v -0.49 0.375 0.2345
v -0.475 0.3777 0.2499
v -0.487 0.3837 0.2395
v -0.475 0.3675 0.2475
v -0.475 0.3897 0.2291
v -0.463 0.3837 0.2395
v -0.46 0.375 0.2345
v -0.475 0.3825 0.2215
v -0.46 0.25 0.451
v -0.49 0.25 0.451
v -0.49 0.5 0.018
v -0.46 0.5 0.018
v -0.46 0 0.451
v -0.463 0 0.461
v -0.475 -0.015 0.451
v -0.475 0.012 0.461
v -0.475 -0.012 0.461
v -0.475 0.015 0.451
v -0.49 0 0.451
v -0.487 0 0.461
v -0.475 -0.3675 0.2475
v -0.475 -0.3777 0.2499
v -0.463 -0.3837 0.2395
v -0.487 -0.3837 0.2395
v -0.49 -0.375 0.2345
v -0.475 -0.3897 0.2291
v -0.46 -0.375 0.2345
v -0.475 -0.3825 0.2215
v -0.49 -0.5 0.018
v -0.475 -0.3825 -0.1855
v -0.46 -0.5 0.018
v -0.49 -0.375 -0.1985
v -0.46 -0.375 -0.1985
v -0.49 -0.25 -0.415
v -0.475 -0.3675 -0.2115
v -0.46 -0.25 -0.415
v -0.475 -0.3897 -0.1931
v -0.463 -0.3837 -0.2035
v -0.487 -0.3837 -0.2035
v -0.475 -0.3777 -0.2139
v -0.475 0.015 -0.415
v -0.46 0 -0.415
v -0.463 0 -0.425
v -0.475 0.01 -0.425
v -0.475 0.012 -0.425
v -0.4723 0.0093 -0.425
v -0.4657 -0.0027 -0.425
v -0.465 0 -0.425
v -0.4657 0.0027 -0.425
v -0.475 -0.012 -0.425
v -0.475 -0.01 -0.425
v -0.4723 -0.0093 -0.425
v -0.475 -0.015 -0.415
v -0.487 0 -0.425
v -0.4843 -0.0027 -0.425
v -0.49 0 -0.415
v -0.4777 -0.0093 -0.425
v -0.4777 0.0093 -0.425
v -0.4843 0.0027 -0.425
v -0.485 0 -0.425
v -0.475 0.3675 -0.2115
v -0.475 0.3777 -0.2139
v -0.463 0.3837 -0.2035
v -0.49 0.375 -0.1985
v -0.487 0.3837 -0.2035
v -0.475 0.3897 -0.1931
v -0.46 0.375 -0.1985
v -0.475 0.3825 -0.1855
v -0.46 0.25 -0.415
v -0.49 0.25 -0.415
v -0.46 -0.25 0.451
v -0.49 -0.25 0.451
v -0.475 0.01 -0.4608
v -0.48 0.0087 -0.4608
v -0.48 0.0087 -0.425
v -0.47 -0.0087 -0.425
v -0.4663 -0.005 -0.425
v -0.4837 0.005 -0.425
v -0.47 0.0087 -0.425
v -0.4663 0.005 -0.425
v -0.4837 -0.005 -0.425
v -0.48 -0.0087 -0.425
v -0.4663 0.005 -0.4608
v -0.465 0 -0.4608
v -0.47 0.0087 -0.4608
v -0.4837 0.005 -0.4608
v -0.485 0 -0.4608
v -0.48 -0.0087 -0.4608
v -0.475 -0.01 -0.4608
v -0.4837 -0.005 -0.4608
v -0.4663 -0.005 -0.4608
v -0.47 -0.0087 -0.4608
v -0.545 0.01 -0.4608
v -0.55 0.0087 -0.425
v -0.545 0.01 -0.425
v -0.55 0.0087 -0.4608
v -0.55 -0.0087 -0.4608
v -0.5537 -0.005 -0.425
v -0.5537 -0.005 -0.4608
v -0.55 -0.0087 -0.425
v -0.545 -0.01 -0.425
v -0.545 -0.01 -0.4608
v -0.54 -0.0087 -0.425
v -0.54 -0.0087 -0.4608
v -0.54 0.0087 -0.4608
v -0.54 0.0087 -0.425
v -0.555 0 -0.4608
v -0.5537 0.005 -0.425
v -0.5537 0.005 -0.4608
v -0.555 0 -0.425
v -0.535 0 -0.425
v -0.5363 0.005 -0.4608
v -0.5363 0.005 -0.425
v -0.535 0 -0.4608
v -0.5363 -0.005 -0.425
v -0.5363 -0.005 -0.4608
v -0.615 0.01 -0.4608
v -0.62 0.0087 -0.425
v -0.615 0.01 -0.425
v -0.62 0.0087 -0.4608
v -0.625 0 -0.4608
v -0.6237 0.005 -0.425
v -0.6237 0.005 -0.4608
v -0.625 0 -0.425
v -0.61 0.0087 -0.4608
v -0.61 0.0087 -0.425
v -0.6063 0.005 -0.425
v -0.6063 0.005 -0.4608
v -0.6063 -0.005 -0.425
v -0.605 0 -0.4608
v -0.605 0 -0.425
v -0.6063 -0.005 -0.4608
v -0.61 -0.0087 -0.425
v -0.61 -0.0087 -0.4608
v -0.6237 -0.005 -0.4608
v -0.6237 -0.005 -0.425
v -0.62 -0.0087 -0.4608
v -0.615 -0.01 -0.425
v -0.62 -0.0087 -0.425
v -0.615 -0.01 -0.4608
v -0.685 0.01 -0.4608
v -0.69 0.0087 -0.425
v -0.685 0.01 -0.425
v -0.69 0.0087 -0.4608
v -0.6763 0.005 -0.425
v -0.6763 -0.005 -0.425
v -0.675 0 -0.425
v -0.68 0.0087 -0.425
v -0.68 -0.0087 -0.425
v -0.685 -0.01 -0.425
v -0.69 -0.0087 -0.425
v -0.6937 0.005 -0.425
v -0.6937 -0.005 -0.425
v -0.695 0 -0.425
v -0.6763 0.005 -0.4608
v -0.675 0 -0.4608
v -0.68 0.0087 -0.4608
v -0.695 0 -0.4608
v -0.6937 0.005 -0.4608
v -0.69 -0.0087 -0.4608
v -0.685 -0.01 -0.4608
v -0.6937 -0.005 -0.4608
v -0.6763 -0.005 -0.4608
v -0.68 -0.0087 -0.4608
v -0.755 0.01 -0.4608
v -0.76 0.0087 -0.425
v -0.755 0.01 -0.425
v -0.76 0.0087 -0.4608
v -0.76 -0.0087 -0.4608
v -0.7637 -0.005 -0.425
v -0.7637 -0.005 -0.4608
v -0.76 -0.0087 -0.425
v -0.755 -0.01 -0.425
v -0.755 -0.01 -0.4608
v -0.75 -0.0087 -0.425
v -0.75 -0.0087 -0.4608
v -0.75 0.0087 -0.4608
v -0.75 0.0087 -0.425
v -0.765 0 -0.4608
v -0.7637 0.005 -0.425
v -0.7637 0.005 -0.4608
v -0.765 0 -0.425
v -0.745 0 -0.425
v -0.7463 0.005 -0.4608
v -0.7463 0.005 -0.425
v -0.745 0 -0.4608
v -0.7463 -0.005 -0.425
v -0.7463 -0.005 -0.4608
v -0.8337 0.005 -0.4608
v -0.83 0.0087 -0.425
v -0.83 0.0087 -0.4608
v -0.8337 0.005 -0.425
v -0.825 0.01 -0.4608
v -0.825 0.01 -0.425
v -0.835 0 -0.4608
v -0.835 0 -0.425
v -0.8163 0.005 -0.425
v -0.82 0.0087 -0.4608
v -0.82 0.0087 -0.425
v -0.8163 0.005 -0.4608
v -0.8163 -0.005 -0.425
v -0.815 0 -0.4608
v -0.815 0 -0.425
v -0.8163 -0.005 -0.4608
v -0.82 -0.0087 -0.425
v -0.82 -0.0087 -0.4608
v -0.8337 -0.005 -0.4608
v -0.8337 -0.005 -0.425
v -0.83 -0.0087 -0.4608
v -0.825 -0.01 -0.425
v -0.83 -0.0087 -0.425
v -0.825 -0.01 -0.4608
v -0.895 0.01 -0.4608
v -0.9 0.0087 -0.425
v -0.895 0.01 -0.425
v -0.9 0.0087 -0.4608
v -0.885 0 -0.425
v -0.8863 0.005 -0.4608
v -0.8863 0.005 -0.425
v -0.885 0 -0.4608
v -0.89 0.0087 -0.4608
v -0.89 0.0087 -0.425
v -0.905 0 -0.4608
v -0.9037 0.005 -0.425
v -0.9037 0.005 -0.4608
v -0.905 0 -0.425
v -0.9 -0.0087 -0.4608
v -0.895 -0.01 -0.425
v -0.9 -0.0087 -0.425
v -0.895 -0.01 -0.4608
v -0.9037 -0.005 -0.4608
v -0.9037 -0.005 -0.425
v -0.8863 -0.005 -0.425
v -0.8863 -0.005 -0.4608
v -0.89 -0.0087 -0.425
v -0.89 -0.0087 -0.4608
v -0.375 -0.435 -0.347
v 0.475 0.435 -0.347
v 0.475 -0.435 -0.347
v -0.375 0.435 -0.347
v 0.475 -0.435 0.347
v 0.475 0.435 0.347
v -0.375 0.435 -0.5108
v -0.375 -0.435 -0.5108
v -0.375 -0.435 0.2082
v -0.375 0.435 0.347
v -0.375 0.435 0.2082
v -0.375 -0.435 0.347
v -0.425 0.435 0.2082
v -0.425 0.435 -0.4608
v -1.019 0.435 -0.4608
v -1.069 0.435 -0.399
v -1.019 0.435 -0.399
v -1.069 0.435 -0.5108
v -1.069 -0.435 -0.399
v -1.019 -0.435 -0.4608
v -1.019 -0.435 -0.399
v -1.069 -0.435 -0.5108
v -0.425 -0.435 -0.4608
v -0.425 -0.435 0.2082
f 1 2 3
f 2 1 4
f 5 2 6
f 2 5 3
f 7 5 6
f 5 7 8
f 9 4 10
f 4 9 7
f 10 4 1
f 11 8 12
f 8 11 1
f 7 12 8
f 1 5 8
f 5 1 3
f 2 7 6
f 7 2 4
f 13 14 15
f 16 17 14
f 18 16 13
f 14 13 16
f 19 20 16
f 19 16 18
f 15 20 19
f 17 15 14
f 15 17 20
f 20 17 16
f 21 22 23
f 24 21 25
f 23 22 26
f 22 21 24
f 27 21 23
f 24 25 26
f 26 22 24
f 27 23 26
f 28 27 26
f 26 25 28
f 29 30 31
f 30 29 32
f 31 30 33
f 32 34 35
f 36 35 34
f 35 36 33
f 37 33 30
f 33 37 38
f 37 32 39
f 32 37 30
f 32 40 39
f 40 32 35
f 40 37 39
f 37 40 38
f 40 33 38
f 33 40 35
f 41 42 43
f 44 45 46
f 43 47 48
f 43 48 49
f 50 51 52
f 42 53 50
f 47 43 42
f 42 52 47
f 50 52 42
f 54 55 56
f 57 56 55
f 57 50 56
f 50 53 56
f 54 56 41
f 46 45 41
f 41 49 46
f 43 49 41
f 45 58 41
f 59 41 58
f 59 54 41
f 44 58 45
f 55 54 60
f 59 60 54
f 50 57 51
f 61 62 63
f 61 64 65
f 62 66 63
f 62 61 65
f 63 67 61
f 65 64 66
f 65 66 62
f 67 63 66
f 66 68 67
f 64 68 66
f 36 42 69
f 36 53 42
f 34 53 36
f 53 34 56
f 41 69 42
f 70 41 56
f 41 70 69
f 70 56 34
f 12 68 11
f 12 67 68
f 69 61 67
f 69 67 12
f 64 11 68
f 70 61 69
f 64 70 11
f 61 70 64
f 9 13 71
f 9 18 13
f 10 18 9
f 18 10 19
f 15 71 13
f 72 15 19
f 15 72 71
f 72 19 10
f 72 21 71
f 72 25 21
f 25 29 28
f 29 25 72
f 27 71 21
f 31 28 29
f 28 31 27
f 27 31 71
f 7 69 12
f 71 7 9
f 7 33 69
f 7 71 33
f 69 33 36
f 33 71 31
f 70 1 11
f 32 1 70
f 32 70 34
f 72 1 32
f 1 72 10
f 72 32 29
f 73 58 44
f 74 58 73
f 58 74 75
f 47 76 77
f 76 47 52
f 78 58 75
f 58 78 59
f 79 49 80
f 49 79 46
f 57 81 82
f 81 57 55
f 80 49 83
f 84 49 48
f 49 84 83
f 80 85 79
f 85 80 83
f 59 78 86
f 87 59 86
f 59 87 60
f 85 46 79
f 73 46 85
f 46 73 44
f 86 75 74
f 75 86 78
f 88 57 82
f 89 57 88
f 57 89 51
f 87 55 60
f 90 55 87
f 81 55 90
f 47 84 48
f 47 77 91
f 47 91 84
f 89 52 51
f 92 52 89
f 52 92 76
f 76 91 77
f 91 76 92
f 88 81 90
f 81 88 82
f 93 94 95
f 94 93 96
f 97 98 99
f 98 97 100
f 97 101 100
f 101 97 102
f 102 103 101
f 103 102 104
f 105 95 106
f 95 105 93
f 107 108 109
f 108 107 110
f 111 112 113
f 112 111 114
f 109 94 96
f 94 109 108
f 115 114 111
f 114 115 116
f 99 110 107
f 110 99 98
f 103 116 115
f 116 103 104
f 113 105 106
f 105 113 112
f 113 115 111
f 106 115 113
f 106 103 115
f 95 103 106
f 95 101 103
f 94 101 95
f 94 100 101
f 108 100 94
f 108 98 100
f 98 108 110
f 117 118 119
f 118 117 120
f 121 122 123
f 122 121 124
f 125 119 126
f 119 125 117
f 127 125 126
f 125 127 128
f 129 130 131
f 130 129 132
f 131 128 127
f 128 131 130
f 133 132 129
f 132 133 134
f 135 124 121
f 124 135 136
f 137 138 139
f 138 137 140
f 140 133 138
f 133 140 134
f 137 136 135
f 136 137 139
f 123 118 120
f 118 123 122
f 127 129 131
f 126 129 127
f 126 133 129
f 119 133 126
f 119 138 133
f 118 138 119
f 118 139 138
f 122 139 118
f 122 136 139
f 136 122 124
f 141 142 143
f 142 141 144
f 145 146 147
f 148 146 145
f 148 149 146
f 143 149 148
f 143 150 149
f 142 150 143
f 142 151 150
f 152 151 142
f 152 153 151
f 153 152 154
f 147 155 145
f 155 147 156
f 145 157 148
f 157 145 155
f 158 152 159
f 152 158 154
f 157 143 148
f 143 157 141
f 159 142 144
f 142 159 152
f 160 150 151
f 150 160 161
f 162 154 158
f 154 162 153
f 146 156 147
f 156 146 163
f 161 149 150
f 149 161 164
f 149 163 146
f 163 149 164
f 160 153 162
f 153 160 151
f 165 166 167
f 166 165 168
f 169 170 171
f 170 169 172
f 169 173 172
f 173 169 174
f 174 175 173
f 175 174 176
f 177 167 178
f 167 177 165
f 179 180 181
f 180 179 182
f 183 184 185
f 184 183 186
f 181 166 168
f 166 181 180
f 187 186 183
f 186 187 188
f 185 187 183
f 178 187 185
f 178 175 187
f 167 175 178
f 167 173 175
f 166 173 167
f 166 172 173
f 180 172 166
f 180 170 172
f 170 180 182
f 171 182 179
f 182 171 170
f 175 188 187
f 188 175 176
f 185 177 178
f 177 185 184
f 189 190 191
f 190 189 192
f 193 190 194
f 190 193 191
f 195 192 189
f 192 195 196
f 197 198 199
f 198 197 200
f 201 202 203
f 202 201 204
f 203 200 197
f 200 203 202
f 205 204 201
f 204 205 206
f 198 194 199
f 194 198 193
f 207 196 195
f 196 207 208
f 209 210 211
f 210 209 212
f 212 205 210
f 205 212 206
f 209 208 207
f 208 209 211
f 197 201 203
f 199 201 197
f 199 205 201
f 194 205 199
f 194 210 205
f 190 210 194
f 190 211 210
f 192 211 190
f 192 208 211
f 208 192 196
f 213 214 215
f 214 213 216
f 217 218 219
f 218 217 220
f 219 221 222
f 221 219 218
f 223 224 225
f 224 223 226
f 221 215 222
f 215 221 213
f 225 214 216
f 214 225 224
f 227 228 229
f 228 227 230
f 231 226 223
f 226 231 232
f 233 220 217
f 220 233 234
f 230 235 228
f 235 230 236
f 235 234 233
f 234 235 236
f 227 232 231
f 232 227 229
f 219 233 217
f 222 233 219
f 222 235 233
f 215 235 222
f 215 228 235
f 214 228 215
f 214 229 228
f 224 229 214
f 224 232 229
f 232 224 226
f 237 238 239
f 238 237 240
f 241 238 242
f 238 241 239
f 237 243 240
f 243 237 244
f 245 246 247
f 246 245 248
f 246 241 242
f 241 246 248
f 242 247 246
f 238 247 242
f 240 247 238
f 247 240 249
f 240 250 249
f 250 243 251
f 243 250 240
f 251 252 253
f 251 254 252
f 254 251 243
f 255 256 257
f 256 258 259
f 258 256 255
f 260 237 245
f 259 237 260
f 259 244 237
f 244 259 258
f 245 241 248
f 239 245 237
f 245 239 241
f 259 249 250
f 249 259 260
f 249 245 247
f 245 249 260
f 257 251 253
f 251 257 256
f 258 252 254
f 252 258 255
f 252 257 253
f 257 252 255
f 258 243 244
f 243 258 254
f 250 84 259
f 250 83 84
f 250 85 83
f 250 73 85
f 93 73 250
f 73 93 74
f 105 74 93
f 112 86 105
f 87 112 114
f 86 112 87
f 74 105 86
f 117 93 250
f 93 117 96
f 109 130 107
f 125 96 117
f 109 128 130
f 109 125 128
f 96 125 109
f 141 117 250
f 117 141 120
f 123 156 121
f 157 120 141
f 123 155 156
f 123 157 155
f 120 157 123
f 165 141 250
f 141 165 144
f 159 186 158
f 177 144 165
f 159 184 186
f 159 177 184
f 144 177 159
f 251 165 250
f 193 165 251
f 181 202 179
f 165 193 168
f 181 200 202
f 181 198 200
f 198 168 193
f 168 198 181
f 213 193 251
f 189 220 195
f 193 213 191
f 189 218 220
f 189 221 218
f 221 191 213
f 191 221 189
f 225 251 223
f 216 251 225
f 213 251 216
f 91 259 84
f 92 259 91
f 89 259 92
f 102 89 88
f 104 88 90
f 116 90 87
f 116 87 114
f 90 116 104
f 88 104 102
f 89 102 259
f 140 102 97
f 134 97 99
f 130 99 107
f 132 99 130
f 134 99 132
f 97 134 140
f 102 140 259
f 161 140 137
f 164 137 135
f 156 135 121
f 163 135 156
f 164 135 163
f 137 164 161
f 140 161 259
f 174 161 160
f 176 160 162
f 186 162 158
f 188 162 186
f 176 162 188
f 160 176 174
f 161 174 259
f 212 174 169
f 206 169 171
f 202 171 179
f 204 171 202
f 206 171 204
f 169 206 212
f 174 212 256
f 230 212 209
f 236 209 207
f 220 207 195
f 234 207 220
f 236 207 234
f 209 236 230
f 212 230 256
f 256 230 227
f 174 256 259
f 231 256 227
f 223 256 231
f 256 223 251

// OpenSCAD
// file: hexagon.scad
module hexagon_tile(R, H=0.03, R_side_grip=0.015, h_side_grip=0.03, h_center_grip=0, r_center_grip=0){
//translate([0,sin(60)*R+h_side_grip/2,0])    
// sin(60)*R+0.05/2 em y
union(){
//difference(){    
cylinder(h = H, r1 = R, r2 = R, center = true, $fn=6);
//translate([0,0,-H/2])
//cylinder(h = H, r1 = R-0.05, r2 = R-0.05, center = true, $fn=6);
//}
for (i = [1:6]){
    rotate([0,0,(i-1)*60])
    translate([0,cos(30)*R+h_side_grip/2,0])
    rotate([90,0,0])
    cylinder(h = h_side_grip, r1 = 0.8*R_side_grip, r2 = R_side_grip, center = true, $fn=4); 
}
translate([0,0,-(h_center_grip+H)/2])
cylinder(h = h_center_grip, r1 = r_center_grip, r2 = r_center_grip, center = true, $fn=6); 
}
}

hexagon_tile(R=1);
// file: solar_panel.scad
module solar_panel(sl=0.25, sw=0.15, sh=0.01, conl=0.1, conh=0.01, hubcl=0.05, hubcw=0.05, hubch=0.01, N=4){
ssep = 0.01;
sep = 0.01;

//cl = (sl-(Nl+1)*sep)/Nl;
//cw = (sw-(Nw+1)*sep)/Nw;
//ch = sh*1.1;

translate([0,hubcw/2,0])
  union(){
    cube([hubcl,hubcw,hubch],center=true);
  translate([-sl/2,0,-sh/2]){
    translate([sl*0.2, 0, -(conh-sh)/2])
      cube([conl,(sw+ssep)*N-ssep,conh]);
    translate([sl*0.8-conl, 0, -(conh-sh)/2])
      cube([conl,(sw+ssep)*N-ssep,conh]);
    for(i=[0:N-1]){
      translate([0, (sw+ssep)*i, 0]){
        cube([sl,sw,sh]);
//        translate([sep, sep, 0])
//          for(i=[0:2])
//            for(j=[0:1])
//              translate([i*(cl+sep), j*(cw+sep), 0])
//                cube([cl,cw,ch]);
        }
    }
  }
  }
}
//rotate([90,0,0])
   color([0.3,0.3,1]) solar_panel(sl=0.6, sw=0.35, sh=0.01, conl=0.01, conh=0.005, hubcl=0.02, hubcw=0.06, hubch=0.008, N=4);
// file: hexagon_mirror.scad
module hexagon_mirror(r_hex, h_hex, th){    
    r = r_hex*0.99;
    lh = r_hex - r;
    h = h_hex - 4*lh;
    
  difference(){
    cylinder(h = h, r1 = r, r2 = r, center = true, $fn=6);
    translate([0,0,h/2])
        cylinder(h = h-th/2, r1 = r-th, r2 = r-th, center = true, $fn=6);
  }
    translate([0,0,-h/2])
        rotate([180,0,0])
            cylinder(h = 4*lh, r1 = 5*lh, r2 = 4*lh, center = true, $fn=6);
}

h_hex=0.05;
th=0.025;
translate([0,0,h_hex/2])
    hexagon_mirror(r_hex=0.5, h_hex=h_hex, th=0.025);
// main file
use <hexagon_mirror.scad>
use <solar_panel.scad>
use <hexagon.scad>

R_side_grip = 0.015;
h_side_grip = 0.01;

module target(R_hub = 0.25, H_hub = 1){
hexagon_mirror(R=0.5, h_center_grip=0.25, r_center_grip=0.3,R_side_grip = 0.015,h_side_grip = 0.01);

translate([0, 0, -H_hub/2])
cylinder(h = H_hub, r1 = R_hub, r2 = R_hub, center = true, $fn=6);

translate([0, 0, -H_hub/2])
cylinder(h = 0.02*H_hub, r1 = 1.2*R_hub, r2 = 1.2*R_hub, center = true, $fn=6);

for(i=[1:3])
    rotate([0,0,(i-1)*120])
        translate([0,R_hub*cos(30),-H_hub+0.05])
            rotate([0, 180, 0])
        solar_panel(sl=0.6, sw=0.35, sh=0.01, conl=0.01, conh=0.005, hubcl=0.02, hubcw=0.06, hubch=0.008, Nl=3, Nw=2);
}

module chaser(w_hub, h_hub, l_hub){
translate([0, 0, -l_hub/2])
//    difference(){
        cube([w_hub, h_hub, l_hub], center=true);
//        translate([-0.1, 0, -0.3])
//            cube([1.1*w_hub, 0.9*h_hub, 0.3*l_hub], center=true);
//    }
    
//for(i=[1:2])
//    rotate([0,0,(i-1)*180])
//        translate([0,h_hub/2,-l_hub+0.3])
//            rotate([0, 90, 0])
//        solar_panel(sl=0.4, sw=0.3, sh=0.01, conl=0.01, conh=0.005, hubcl=0.02, hubcw=0.06, hubch=0.008, Nl=3, Nw=2);

l_hub_back = 0.05;
translate([0.2*w_hub, 0, -l_hub-l_hub_back/2])
cube([1*w_hub, h_hub, l_hub_back], center=true);
translate([0.65*w_hub, 0, -l_hub+l_hub_back/2-w_hub])
cube([0.15*w_hub, h_hub, l_hub_back], center=true);
rotate([0,90,0])
translate([+w_hub/2+l_hub,0,0.7*w_hub])
cube([1*w_hub, h_hub, l_hub_back], center=true);

for (i = [1:1]){
        translate([-0.1/2+0.032, 0, -l_hub_chaser-0.1-(i-1)*0.1+0.1])
        rotate([0,0,30])
        hexagon_tile(H=0.03, R=0.5,R_side_grip = 0.015,
h_side_grip = 0.01);
        }
        
for (i = [1:7]){       
        translate([0.5-0.1/2, 0, -l_hub_chaser-0.1-(i-1)*0.07+0.1])
        rotate([0,90,0])
        cylinder(h = 0.05, r1 = 0.01, r2 = 0.01, center = true, $fn=12);
        }
}

l_hub_chaser=0.950;
R_target = 0.3;
H_target = 1.1;
//target(R_hub=R_target, H_hub=H_target);

// rotate([0,0,60])
//translate([0, 0.4+cos(30)*R_target, -H_target*0.5])
//   rotate([90,90,0]) {
    rotate([0,90,0]) 
    translate([0,0,l_hub_chaser/2])
        chaser(w_hub = 0.794-0.1, h_hub = 0.970-0.1, l_hub=l_hub_chaser-0.1);      
//   }
